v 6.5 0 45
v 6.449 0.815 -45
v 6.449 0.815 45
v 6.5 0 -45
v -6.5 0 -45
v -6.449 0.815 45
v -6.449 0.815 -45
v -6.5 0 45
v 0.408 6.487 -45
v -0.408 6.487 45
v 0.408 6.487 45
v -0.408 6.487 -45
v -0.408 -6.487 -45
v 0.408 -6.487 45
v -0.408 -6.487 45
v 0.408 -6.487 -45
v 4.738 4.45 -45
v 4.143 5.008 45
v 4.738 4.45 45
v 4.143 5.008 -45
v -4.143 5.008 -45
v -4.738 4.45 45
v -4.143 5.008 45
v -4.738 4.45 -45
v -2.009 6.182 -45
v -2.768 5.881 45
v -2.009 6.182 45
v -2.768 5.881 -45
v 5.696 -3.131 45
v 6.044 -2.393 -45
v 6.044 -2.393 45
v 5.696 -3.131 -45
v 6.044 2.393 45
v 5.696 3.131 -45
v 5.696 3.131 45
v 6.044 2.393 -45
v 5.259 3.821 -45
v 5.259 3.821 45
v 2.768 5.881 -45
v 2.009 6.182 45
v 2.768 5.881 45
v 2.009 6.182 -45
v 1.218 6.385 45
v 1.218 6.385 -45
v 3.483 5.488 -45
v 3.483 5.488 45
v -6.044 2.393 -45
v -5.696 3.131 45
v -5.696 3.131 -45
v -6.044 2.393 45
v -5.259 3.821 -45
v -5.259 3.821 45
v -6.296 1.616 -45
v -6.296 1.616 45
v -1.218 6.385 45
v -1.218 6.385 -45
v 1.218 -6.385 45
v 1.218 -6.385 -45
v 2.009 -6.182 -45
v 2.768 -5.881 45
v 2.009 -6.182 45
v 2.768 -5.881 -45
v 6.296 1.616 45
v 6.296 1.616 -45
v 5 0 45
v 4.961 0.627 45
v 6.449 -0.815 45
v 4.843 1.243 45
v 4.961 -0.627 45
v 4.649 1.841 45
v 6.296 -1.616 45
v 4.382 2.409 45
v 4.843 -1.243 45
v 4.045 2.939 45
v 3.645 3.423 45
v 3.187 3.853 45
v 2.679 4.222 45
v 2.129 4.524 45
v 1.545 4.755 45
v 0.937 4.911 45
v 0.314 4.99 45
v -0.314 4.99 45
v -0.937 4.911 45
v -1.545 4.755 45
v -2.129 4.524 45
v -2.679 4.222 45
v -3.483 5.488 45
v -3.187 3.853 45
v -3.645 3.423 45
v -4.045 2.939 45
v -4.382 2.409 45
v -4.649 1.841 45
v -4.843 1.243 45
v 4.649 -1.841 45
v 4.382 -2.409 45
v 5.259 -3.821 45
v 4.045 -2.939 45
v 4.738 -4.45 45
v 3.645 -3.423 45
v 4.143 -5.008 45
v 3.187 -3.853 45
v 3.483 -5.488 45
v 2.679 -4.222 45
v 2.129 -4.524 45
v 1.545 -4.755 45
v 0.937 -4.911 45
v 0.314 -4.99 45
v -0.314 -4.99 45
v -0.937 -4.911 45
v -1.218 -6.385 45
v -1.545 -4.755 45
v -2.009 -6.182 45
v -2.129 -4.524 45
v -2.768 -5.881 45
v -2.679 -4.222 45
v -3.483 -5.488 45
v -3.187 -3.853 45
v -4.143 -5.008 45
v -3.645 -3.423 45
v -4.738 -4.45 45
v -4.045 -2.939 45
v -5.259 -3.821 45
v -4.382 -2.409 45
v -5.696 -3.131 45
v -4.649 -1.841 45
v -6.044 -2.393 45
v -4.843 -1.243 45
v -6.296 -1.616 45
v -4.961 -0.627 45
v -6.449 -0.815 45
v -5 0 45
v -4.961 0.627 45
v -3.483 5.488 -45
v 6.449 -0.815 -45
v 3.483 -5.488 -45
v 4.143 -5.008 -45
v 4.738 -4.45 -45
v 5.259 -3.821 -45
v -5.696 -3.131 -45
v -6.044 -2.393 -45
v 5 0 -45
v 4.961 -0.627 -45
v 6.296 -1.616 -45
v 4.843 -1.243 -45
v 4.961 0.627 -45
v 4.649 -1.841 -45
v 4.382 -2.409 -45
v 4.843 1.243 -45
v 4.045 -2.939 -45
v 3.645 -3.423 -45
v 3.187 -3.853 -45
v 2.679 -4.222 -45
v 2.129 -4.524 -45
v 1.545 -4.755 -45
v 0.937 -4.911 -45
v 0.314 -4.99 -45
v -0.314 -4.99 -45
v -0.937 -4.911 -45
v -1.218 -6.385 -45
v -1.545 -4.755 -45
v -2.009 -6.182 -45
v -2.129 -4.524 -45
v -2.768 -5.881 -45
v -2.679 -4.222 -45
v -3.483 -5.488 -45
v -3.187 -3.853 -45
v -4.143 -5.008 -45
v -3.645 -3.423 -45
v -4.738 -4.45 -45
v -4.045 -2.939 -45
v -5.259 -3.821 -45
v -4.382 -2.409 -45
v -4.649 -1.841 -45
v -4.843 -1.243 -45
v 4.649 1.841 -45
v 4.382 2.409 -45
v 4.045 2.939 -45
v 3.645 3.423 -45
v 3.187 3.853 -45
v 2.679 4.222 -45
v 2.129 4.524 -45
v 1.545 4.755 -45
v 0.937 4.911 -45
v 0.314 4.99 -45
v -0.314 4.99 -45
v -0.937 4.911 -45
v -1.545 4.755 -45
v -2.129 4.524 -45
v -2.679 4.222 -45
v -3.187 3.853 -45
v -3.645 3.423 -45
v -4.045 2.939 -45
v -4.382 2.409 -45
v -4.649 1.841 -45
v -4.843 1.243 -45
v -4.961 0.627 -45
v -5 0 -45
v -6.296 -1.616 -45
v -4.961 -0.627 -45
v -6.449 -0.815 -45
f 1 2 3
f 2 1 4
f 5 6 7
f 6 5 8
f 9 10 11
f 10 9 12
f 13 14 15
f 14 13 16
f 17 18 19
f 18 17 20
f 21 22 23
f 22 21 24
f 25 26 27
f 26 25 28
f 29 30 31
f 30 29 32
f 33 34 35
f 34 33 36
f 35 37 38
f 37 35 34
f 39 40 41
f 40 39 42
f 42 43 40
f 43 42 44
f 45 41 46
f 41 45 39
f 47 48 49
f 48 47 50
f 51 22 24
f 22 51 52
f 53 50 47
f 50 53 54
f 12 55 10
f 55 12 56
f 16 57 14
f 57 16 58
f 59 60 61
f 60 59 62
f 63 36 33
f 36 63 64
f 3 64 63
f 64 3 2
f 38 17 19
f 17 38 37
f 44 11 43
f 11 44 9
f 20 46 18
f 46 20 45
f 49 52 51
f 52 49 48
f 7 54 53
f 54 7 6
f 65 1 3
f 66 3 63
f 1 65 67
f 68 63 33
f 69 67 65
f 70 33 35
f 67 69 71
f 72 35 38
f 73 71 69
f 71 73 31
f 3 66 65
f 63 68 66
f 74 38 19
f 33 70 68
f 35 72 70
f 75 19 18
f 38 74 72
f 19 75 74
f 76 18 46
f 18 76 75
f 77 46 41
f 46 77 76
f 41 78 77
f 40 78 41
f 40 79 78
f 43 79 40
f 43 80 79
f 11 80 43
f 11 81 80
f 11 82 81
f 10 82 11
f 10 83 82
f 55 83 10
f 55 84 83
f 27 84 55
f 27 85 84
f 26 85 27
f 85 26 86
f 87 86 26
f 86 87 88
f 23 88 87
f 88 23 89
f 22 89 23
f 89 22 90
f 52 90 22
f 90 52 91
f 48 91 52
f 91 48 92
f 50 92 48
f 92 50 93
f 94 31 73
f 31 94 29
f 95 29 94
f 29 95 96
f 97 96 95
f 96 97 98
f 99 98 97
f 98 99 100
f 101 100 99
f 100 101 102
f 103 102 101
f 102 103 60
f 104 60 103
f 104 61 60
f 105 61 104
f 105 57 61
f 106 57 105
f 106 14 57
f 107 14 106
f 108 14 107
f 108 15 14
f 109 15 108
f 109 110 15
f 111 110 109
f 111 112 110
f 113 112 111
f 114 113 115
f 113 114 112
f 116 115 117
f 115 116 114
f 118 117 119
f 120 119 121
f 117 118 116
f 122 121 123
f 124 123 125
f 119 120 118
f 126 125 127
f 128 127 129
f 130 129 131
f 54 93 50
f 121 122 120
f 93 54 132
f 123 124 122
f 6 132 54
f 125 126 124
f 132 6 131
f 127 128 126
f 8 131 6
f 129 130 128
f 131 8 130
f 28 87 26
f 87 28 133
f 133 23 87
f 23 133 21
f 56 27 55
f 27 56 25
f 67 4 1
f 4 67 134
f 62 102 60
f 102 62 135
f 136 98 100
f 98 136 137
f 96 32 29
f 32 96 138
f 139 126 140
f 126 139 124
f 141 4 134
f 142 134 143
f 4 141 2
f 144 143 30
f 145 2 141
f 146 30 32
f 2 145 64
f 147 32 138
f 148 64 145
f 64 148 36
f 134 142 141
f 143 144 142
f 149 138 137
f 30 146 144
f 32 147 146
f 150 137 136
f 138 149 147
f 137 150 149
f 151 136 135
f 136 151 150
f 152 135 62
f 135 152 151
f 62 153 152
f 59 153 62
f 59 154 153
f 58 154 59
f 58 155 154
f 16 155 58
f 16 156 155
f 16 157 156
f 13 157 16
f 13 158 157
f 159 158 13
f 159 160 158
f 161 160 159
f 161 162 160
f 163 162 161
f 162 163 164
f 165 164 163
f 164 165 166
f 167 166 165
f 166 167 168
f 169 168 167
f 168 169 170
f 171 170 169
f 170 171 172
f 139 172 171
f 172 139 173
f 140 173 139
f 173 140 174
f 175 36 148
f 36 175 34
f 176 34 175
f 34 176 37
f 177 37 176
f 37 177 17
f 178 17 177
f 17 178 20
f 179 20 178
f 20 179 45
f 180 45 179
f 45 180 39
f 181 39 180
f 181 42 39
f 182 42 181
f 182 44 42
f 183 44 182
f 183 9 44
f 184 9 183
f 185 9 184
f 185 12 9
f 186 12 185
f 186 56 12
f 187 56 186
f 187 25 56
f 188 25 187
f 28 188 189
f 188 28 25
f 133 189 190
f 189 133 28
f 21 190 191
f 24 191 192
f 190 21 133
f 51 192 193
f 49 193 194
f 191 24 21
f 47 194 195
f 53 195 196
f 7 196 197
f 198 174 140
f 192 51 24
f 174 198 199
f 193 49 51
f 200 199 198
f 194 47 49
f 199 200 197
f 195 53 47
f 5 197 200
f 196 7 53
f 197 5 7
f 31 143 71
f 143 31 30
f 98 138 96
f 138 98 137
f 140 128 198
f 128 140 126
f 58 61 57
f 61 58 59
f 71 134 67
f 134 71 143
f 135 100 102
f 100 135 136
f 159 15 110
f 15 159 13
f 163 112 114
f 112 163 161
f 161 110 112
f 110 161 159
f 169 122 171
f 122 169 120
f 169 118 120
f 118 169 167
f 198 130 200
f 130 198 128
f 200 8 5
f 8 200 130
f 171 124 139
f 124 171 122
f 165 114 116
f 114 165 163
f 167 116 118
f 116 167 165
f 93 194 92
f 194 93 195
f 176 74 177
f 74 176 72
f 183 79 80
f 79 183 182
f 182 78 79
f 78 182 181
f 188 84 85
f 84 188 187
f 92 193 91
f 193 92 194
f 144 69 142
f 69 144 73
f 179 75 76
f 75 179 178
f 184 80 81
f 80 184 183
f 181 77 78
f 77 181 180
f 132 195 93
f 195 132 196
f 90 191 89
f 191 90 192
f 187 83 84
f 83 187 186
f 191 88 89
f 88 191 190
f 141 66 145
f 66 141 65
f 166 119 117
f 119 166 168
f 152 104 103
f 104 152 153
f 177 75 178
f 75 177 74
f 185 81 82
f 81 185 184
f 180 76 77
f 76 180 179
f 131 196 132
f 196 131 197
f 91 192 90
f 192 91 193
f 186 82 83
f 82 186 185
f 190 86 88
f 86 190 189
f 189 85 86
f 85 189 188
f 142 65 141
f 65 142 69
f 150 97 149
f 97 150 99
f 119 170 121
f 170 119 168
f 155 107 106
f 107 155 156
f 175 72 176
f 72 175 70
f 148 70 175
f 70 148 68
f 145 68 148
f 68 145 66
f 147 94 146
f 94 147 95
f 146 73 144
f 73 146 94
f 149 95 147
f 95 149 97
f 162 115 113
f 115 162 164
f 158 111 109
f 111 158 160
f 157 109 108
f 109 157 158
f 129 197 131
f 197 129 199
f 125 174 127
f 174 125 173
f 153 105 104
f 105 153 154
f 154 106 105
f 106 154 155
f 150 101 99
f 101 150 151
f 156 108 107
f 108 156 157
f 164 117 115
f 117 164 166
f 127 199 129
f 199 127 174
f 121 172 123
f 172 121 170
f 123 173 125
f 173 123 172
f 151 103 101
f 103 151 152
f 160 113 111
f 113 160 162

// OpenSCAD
$fn = 50;


difference() {
	union() {
		translate(v = [0, 0, -45.0000000000]) {
			cylinder(h = 90, r = 6.5000000000);
		}
	}
	union() {
		translate(v = [0, 0, -100.0000000000]) {
			cylinder(h = 200, r = 5);
		}
	}
}
